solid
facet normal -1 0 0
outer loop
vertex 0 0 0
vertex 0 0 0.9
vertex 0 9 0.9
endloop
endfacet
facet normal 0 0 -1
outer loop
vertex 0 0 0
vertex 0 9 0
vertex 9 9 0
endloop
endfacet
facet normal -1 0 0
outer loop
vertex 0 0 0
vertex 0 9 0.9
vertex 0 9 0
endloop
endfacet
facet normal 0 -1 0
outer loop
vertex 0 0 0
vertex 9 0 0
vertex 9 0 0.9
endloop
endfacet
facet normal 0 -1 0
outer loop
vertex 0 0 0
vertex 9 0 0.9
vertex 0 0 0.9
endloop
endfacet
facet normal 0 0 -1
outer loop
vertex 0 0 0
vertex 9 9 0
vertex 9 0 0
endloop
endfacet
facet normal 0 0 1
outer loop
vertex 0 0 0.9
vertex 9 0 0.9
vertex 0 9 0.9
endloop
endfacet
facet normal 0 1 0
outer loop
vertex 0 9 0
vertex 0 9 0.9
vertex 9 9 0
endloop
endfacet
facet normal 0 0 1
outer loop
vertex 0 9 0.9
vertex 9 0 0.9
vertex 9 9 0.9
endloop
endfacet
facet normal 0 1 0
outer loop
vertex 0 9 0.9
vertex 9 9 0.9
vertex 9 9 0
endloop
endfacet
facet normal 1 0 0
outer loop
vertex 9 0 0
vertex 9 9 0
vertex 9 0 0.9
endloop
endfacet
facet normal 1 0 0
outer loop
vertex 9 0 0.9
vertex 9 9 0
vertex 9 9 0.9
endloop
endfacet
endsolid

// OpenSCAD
/* Warning, this is a very basic generator with a lot of approximation 
input data : [VQFN, 4EW, 9x9x0.9mm, 64, , A, C04-00584A]
generated by com.zoubworld.electronics.cad.model3d.Basic
Date : Sun Feb 15 10:50:49 CET 2026
*/

//body
color("black")
translate([0,0,0])
cube([9.0,9.0,0.9], center=false);
